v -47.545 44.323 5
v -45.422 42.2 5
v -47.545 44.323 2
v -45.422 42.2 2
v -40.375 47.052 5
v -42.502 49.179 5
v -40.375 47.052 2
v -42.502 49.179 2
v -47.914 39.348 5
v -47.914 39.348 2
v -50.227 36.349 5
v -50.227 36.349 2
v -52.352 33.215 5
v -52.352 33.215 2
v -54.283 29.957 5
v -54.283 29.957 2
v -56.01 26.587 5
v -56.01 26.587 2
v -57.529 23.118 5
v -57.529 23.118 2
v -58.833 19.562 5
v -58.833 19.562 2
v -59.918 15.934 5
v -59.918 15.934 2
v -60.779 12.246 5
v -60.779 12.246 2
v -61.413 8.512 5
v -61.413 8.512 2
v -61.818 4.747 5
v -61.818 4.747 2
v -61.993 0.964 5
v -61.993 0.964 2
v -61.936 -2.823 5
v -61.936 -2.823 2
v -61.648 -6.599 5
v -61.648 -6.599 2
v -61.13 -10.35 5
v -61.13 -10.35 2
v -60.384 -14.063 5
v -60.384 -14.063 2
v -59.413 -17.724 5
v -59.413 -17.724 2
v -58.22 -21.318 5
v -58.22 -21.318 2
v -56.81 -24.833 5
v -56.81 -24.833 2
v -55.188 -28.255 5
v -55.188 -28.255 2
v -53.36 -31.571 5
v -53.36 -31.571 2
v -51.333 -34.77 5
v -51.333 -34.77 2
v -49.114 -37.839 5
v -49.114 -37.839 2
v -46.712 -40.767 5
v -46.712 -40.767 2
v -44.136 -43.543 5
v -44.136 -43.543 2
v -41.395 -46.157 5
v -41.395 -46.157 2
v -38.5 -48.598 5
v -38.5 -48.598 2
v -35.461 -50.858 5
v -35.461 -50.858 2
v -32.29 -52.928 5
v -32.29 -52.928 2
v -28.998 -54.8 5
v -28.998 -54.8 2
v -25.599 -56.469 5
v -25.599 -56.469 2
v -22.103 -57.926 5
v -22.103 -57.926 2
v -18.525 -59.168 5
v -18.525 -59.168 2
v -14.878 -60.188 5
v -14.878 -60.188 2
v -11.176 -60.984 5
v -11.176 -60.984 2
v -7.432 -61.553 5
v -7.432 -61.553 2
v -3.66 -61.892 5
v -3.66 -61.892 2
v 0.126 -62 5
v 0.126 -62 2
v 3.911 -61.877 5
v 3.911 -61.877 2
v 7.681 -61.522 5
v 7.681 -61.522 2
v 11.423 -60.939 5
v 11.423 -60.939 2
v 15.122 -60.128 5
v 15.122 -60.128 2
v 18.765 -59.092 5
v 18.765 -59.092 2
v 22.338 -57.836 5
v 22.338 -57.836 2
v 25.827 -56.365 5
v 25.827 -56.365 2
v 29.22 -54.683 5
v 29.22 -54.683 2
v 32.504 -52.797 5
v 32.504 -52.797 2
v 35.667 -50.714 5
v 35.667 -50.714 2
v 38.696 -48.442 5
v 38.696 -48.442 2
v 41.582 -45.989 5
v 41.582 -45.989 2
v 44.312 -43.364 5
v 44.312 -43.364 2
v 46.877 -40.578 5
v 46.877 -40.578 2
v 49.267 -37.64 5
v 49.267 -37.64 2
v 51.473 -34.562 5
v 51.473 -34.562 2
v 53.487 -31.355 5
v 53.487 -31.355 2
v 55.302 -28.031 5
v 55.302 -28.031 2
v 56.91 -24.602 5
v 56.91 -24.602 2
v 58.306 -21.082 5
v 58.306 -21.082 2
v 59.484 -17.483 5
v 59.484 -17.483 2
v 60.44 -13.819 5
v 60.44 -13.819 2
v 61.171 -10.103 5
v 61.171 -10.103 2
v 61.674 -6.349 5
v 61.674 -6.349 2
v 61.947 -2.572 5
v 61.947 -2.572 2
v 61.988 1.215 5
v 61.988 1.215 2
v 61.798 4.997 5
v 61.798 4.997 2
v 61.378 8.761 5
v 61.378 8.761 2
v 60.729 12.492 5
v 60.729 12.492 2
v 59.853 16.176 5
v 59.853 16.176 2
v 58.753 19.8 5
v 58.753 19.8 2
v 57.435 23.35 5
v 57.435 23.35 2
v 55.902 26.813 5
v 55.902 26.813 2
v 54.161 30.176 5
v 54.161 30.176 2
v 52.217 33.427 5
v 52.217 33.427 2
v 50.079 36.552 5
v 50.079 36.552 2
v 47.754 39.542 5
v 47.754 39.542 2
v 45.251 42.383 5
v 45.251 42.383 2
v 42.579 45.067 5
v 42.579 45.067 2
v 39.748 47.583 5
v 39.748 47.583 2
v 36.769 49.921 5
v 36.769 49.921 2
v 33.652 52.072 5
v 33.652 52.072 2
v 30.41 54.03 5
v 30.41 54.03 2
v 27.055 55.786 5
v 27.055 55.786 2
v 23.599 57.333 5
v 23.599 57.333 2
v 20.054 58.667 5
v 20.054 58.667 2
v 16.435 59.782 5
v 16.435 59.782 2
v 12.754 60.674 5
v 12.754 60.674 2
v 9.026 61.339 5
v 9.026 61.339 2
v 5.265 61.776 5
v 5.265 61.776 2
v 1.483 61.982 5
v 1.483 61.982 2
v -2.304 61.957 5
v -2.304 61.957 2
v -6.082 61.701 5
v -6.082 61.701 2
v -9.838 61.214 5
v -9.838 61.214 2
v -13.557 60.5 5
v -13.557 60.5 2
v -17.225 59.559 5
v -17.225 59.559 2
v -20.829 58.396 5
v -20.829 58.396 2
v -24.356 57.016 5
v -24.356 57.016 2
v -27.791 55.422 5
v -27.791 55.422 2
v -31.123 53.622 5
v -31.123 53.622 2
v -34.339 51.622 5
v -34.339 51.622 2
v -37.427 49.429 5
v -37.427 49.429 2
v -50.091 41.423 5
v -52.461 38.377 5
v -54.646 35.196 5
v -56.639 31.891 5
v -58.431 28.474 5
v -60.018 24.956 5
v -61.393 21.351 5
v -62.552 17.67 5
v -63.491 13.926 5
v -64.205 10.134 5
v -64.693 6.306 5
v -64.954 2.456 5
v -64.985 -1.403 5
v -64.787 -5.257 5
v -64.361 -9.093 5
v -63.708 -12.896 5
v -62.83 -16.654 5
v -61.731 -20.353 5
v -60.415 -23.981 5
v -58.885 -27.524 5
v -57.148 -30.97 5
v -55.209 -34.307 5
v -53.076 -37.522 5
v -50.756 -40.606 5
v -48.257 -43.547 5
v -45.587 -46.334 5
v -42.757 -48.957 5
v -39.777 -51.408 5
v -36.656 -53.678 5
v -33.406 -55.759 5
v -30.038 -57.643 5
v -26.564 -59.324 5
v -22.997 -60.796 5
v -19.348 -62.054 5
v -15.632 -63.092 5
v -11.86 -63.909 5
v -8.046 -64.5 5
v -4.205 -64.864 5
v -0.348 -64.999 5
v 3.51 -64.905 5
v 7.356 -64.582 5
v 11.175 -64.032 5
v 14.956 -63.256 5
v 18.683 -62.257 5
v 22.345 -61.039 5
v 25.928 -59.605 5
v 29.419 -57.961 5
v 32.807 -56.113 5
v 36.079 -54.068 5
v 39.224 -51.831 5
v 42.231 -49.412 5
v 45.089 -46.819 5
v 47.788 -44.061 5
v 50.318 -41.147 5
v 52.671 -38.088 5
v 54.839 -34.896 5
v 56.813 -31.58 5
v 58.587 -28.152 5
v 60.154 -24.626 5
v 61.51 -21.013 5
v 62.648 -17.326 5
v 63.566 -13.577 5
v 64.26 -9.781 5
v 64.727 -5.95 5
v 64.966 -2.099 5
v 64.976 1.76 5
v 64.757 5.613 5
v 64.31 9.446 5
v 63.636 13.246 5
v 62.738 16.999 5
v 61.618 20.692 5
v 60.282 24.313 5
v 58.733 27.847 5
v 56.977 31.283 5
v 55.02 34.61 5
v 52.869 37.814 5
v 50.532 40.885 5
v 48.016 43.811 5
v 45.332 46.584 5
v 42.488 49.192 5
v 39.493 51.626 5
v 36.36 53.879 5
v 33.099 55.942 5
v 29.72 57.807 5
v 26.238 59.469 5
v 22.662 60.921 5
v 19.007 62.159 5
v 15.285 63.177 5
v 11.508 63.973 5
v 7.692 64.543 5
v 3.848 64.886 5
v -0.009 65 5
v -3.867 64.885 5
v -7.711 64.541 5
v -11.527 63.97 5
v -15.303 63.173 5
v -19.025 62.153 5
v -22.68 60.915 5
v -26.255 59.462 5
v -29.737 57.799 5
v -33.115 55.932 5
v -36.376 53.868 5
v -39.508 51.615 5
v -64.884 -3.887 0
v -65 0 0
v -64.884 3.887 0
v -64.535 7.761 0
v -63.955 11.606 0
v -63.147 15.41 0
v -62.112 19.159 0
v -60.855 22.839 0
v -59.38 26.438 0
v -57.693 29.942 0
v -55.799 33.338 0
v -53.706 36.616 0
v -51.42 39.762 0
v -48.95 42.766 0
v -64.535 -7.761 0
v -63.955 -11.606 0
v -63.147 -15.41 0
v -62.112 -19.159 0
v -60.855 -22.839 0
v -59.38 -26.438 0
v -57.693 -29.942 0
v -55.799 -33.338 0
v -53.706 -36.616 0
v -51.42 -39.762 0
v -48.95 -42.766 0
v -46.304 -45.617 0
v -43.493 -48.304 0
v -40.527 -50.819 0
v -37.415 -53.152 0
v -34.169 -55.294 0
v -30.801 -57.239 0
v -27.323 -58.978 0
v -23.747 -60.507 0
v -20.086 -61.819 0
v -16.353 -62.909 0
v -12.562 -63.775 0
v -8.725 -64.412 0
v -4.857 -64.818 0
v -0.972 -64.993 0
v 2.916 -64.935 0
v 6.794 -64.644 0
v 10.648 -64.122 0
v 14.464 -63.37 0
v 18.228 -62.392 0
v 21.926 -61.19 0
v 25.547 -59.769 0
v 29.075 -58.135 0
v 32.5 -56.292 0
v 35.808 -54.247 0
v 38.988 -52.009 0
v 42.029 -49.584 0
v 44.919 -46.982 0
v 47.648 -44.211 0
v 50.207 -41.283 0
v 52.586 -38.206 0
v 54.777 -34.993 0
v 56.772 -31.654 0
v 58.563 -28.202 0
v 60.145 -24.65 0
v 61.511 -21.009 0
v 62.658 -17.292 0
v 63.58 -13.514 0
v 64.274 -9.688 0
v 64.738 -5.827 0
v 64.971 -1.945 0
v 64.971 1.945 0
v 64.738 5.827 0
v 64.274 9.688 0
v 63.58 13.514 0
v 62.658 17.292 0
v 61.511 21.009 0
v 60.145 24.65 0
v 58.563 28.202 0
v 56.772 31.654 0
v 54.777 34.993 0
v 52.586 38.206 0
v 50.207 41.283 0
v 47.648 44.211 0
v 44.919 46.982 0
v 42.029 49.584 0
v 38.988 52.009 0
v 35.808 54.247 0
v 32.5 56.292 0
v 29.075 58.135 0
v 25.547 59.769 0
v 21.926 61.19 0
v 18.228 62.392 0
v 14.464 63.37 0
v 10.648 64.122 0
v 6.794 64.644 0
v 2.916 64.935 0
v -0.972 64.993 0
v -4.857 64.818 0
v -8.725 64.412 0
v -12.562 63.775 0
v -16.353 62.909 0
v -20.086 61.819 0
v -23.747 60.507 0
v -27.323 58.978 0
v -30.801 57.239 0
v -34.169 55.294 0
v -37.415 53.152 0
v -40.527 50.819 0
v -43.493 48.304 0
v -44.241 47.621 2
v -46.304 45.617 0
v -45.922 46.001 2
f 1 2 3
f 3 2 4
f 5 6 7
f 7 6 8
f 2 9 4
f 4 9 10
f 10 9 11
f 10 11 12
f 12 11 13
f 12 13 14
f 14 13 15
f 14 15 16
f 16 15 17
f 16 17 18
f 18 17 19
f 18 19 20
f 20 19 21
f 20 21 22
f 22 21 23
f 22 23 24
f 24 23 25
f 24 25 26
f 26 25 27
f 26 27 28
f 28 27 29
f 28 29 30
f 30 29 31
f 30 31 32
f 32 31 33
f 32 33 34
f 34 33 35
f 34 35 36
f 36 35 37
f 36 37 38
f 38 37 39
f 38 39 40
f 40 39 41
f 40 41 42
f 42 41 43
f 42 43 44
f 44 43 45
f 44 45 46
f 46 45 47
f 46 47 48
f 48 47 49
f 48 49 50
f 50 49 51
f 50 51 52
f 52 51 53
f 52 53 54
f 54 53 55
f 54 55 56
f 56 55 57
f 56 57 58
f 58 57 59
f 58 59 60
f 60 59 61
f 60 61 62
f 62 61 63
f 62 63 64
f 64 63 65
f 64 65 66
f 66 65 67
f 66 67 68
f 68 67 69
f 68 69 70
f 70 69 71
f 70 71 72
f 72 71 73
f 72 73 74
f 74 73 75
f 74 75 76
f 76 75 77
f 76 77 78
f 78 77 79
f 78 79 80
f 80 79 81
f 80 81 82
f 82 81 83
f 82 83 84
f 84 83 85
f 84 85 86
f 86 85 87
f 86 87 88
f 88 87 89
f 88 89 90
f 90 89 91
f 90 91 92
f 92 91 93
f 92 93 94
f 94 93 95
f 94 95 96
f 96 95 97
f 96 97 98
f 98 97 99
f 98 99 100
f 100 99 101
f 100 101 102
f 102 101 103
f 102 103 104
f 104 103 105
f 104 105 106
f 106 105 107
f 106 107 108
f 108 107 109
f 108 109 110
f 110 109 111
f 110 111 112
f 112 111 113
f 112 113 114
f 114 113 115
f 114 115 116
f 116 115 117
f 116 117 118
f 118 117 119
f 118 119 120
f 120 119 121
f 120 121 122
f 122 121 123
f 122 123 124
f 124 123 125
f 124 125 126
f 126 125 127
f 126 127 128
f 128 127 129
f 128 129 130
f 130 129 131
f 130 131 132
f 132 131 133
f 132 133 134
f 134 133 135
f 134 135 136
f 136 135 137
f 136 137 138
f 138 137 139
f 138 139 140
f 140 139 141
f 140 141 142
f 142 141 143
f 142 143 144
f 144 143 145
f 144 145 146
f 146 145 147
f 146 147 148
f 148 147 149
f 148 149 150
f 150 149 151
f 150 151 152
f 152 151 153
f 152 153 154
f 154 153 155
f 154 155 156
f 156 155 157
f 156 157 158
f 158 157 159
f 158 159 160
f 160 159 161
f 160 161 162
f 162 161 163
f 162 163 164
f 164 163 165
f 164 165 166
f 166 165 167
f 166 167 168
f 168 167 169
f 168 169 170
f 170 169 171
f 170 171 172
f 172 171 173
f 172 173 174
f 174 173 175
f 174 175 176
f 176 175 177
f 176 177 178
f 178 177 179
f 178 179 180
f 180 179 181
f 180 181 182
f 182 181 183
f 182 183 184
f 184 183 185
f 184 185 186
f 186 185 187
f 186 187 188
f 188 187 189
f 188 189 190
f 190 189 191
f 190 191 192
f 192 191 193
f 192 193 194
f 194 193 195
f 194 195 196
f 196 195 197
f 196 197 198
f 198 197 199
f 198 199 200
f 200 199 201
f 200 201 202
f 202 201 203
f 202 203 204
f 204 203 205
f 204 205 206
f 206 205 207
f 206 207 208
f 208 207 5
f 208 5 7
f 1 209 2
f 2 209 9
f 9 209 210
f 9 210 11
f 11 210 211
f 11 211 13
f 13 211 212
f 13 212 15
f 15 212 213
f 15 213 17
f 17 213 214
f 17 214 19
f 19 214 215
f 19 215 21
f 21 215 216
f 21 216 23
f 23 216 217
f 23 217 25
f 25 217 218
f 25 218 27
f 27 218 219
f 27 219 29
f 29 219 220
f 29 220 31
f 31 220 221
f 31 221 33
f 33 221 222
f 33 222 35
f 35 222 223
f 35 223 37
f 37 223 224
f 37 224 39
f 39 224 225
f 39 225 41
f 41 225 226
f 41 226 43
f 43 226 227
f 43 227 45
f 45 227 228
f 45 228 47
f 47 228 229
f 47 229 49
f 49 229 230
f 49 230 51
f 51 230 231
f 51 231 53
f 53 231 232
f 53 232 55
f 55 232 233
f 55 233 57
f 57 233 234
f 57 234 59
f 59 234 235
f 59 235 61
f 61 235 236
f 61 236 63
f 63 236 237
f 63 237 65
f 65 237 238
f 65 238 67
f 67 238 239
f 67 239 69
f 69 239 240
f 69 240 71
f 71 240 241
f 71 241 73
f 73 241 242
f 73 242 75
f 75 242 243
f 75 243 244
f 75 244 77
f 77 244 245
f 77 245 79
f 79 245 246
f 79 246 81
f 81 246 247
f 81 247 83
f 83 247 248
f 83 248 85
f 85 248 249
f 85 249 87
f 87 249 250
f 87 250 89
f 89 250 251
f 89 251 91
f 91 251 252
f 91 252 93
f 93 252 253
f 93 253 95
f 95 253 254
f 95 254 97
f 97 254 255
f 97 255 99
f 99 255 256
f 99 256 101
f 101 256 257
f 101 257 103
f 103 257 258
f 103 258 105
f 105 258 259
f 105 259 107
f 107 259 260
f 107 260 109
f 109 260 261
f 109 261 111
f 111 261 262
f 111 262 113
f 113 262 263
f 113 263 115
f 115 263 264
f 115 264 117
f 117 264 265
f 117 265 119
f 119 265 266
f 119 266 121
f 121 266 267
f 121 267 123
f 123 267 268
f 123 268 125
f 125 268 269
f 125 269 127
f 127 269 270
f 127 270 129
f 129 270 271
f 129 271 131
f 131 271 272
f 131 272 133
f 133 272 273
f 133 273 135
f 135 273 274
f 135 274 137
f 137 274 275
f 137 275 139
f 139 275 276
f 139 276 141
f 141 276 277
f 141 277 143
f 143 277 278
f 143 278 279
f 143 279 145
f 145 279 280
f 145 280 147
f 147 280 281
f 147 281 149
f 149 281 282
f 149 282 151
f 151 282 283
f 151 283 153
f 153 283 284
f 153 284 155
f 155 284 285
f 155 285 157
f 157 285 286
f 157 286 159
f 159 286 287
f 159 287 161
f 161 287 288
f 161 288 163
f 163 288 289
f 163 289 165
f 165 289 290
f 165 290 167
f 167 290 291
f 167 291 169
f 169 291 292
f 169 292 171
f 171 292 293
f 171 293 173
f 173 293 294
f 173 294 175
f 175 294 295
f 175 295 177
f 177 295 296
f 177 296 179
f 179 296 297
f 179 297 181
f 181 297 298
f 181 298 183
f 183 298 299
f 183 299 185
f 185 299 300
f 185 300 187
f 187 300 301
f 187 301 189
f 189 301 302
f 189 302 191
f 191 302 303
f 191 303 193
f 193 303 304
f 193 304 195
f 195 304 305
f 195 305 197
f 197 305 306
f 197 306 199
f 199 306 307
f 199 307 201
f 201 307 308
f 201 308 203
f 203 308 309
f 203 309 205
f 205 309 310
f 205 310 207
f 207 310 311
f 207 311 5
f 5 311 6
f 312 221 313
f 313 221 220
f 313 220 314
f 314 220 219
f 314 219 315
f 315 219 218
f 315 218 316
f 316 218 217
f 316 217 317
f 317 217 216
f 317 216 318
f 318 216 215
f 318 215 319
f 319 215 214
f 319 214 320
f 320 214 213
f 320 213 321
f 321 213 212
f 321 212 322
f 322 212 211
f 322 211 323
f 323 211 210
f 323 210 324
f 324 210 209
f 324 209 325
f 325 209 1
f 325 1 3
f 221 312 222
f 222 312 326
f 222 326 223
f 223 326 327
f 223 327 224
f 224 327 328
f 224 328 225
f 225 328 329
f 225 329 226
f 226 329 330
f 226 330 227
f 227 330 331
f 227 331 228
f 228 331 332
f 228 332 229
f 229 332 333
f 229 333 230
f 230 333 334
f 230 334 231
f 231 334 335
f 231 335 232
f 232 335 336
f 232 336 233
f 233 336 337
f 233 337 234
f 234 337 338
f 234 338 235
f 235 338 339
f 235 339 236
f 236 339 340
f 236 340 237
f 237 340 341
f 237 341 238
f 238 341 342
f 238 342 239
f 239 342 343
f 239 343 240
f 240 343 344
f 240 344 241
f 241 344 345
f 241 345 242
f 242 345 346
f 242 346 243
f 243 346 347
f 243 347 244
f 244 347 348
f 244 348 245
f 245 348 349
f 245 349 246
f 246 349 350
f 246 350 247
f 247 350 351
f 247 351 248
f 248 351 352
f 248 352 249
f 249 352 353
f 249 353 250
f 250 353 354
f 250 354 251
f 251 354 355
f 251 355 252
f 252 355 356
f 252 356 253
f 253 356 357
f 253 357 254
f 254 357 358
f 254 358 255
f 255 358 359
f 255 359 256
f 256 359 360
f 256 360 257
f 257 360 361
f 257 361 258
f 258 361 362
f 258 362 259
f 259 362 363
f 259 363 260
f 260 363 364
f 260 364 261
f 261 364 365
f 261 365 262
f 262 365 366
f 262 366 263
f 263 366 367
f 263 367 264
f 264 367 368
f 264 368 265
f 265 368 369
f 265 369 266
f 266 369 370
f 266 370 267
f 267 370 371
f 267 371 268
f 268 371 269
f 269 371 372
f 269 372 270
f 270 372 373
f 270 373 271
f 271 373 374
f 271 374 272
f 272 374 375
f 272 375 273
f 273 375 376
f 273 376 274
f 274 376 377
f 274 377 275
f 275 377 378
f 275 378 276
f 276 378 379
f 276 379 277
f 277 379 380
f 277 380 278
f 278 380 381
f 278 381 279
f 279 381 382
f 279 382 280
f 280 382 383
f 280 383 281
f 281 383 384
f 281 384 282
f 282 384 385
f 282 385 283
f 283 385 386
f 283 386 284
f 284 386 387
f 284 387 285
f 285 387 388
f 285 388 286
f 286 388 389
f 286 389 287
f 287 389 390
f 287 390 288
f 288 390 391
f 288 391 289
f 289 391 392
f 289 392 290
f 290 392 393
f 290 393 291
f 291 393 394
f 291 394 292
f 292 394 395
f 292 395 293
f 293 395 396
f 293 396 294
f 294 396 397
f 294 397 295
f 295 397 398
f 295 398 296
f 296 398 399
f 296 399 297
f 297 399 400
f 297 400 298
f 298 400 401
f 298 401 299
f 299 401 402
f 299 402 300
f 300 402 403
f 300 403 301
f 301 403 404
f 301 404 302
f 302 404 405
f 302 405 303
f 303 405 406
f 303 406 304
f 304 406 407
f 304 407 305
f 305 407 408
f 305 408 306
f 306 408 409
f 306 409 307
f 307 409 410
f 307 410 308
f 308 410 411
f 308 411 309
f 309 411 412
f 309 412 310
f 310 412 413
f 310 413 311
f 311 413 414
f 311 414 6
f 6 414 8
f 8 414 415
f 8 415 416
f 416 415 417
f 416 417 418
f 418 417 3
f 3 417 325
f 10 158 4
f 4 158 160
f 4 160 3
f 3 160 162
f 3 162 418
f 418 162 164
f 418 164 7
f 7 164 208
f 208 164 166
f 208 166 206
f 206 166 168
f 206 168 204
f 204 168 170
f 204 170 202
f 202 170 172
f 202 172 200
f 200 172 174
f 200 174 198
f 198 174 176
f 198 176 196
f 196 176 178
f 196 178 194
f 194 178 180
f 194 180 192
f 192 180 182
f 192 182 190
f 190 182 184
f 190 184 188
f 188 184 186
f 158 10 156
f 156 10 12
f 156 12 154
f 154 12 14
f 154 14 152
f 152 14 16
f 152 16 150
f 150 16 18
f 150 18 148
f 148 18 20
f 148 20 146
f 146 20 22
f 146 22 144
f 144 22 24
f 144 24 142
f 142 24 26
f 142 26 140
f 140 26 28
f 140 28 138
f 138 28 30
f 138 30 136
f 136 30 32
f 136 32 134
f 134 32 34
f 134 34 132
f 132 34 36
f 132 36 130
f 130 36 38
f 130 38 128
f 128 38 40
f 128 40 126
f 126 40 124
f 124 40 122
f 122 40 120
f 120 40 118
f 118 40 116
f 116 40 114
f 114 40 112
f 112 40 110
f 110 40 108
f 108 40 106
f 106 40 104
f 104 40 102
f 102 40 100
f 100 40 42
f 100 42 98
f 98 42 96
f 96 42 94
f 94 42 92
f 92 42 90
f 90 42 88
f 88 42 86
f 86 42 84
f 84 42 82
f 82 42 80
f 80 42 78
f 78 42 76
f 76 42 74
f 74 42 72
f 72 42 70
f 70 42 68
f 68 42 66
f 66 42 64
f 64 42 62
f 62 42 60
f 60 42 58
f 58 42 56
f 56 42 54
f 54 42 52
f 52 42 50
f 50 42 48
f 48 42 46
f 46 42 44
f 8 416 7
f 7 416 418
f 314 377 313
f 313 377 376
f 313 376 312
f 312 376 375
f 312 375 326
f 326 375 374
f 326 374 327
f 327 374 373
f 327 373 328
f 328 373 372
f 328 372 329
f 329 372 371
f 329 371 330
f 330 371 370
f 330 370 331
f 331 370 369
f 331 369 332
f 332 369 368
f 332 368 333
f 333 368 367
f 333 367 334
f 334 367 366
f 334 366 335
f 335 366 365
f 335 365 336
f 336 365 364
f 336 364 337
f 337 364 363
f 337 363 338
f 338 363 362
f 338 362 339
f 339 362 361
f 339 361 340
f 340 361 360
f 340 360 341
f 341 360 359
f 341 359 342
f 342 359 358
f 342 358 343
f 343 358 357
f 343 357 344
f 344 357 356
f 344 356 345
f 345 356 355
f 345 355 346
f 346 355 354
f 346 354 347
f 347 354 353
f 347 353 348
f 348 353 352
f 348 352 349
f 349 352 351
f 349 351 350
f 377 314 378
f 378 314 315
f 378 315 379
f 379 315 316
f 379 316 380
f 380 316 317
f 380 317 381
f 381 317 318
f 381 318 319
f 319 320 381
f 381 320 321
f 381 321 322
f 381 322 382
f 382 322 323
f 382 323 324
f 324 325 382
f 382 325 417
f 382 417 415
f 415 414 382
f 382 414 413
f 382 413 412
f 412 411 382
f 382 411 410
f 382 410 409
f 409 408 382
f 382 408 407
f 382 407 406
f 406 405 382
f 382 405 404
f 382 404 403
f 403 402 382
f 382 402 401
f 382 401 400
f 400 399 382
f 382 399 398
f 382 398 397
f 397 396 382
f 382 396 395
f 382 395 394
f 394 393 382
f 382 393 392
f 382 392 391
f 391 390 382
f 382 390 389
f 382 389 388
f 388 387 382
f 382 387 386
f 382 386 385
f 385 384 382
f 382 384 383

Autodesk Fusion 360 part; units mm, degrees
sketch "Sketch1" plane through (0, 0, 0) normal (0, 0, 1) x (1, 0, 0)
  circle A0 centre (0, 0) radius 65
  dimension "d1" = 130
extrude "Extrude1" add sketch "Sketch1" along normal blind 5
hole "Hole1" at (0, 0, 5) direction (0, 0, -1) diameter 124 depth 3 tip angle 180
sketch "Sketch2" plane through (0, 0, 5) normal (0, 0, 1) x (-1, 0, 0)
  circle A0 centre (0, 0) radius 62
  circle A1 centre (0, 0) radius 65
  line L0 (54.116, -50.8938) -> (49.1662, -55.8435)
  line L1 (49.1662, -55.8435) -> (34.7966, -41.4739)
  line L2 (34.7966, -41.4739) -> (39.7463, -36.5241)
  line L3 (39.7463, -36.5241) -> (54.116, -50.8938)
  dimension "d7" = 7
extrude "Extrude2" cut sketch "Sketch2" against normal blind 3 contours A0 A1 L1 L3 picked at (41.6647, -47.2432)
